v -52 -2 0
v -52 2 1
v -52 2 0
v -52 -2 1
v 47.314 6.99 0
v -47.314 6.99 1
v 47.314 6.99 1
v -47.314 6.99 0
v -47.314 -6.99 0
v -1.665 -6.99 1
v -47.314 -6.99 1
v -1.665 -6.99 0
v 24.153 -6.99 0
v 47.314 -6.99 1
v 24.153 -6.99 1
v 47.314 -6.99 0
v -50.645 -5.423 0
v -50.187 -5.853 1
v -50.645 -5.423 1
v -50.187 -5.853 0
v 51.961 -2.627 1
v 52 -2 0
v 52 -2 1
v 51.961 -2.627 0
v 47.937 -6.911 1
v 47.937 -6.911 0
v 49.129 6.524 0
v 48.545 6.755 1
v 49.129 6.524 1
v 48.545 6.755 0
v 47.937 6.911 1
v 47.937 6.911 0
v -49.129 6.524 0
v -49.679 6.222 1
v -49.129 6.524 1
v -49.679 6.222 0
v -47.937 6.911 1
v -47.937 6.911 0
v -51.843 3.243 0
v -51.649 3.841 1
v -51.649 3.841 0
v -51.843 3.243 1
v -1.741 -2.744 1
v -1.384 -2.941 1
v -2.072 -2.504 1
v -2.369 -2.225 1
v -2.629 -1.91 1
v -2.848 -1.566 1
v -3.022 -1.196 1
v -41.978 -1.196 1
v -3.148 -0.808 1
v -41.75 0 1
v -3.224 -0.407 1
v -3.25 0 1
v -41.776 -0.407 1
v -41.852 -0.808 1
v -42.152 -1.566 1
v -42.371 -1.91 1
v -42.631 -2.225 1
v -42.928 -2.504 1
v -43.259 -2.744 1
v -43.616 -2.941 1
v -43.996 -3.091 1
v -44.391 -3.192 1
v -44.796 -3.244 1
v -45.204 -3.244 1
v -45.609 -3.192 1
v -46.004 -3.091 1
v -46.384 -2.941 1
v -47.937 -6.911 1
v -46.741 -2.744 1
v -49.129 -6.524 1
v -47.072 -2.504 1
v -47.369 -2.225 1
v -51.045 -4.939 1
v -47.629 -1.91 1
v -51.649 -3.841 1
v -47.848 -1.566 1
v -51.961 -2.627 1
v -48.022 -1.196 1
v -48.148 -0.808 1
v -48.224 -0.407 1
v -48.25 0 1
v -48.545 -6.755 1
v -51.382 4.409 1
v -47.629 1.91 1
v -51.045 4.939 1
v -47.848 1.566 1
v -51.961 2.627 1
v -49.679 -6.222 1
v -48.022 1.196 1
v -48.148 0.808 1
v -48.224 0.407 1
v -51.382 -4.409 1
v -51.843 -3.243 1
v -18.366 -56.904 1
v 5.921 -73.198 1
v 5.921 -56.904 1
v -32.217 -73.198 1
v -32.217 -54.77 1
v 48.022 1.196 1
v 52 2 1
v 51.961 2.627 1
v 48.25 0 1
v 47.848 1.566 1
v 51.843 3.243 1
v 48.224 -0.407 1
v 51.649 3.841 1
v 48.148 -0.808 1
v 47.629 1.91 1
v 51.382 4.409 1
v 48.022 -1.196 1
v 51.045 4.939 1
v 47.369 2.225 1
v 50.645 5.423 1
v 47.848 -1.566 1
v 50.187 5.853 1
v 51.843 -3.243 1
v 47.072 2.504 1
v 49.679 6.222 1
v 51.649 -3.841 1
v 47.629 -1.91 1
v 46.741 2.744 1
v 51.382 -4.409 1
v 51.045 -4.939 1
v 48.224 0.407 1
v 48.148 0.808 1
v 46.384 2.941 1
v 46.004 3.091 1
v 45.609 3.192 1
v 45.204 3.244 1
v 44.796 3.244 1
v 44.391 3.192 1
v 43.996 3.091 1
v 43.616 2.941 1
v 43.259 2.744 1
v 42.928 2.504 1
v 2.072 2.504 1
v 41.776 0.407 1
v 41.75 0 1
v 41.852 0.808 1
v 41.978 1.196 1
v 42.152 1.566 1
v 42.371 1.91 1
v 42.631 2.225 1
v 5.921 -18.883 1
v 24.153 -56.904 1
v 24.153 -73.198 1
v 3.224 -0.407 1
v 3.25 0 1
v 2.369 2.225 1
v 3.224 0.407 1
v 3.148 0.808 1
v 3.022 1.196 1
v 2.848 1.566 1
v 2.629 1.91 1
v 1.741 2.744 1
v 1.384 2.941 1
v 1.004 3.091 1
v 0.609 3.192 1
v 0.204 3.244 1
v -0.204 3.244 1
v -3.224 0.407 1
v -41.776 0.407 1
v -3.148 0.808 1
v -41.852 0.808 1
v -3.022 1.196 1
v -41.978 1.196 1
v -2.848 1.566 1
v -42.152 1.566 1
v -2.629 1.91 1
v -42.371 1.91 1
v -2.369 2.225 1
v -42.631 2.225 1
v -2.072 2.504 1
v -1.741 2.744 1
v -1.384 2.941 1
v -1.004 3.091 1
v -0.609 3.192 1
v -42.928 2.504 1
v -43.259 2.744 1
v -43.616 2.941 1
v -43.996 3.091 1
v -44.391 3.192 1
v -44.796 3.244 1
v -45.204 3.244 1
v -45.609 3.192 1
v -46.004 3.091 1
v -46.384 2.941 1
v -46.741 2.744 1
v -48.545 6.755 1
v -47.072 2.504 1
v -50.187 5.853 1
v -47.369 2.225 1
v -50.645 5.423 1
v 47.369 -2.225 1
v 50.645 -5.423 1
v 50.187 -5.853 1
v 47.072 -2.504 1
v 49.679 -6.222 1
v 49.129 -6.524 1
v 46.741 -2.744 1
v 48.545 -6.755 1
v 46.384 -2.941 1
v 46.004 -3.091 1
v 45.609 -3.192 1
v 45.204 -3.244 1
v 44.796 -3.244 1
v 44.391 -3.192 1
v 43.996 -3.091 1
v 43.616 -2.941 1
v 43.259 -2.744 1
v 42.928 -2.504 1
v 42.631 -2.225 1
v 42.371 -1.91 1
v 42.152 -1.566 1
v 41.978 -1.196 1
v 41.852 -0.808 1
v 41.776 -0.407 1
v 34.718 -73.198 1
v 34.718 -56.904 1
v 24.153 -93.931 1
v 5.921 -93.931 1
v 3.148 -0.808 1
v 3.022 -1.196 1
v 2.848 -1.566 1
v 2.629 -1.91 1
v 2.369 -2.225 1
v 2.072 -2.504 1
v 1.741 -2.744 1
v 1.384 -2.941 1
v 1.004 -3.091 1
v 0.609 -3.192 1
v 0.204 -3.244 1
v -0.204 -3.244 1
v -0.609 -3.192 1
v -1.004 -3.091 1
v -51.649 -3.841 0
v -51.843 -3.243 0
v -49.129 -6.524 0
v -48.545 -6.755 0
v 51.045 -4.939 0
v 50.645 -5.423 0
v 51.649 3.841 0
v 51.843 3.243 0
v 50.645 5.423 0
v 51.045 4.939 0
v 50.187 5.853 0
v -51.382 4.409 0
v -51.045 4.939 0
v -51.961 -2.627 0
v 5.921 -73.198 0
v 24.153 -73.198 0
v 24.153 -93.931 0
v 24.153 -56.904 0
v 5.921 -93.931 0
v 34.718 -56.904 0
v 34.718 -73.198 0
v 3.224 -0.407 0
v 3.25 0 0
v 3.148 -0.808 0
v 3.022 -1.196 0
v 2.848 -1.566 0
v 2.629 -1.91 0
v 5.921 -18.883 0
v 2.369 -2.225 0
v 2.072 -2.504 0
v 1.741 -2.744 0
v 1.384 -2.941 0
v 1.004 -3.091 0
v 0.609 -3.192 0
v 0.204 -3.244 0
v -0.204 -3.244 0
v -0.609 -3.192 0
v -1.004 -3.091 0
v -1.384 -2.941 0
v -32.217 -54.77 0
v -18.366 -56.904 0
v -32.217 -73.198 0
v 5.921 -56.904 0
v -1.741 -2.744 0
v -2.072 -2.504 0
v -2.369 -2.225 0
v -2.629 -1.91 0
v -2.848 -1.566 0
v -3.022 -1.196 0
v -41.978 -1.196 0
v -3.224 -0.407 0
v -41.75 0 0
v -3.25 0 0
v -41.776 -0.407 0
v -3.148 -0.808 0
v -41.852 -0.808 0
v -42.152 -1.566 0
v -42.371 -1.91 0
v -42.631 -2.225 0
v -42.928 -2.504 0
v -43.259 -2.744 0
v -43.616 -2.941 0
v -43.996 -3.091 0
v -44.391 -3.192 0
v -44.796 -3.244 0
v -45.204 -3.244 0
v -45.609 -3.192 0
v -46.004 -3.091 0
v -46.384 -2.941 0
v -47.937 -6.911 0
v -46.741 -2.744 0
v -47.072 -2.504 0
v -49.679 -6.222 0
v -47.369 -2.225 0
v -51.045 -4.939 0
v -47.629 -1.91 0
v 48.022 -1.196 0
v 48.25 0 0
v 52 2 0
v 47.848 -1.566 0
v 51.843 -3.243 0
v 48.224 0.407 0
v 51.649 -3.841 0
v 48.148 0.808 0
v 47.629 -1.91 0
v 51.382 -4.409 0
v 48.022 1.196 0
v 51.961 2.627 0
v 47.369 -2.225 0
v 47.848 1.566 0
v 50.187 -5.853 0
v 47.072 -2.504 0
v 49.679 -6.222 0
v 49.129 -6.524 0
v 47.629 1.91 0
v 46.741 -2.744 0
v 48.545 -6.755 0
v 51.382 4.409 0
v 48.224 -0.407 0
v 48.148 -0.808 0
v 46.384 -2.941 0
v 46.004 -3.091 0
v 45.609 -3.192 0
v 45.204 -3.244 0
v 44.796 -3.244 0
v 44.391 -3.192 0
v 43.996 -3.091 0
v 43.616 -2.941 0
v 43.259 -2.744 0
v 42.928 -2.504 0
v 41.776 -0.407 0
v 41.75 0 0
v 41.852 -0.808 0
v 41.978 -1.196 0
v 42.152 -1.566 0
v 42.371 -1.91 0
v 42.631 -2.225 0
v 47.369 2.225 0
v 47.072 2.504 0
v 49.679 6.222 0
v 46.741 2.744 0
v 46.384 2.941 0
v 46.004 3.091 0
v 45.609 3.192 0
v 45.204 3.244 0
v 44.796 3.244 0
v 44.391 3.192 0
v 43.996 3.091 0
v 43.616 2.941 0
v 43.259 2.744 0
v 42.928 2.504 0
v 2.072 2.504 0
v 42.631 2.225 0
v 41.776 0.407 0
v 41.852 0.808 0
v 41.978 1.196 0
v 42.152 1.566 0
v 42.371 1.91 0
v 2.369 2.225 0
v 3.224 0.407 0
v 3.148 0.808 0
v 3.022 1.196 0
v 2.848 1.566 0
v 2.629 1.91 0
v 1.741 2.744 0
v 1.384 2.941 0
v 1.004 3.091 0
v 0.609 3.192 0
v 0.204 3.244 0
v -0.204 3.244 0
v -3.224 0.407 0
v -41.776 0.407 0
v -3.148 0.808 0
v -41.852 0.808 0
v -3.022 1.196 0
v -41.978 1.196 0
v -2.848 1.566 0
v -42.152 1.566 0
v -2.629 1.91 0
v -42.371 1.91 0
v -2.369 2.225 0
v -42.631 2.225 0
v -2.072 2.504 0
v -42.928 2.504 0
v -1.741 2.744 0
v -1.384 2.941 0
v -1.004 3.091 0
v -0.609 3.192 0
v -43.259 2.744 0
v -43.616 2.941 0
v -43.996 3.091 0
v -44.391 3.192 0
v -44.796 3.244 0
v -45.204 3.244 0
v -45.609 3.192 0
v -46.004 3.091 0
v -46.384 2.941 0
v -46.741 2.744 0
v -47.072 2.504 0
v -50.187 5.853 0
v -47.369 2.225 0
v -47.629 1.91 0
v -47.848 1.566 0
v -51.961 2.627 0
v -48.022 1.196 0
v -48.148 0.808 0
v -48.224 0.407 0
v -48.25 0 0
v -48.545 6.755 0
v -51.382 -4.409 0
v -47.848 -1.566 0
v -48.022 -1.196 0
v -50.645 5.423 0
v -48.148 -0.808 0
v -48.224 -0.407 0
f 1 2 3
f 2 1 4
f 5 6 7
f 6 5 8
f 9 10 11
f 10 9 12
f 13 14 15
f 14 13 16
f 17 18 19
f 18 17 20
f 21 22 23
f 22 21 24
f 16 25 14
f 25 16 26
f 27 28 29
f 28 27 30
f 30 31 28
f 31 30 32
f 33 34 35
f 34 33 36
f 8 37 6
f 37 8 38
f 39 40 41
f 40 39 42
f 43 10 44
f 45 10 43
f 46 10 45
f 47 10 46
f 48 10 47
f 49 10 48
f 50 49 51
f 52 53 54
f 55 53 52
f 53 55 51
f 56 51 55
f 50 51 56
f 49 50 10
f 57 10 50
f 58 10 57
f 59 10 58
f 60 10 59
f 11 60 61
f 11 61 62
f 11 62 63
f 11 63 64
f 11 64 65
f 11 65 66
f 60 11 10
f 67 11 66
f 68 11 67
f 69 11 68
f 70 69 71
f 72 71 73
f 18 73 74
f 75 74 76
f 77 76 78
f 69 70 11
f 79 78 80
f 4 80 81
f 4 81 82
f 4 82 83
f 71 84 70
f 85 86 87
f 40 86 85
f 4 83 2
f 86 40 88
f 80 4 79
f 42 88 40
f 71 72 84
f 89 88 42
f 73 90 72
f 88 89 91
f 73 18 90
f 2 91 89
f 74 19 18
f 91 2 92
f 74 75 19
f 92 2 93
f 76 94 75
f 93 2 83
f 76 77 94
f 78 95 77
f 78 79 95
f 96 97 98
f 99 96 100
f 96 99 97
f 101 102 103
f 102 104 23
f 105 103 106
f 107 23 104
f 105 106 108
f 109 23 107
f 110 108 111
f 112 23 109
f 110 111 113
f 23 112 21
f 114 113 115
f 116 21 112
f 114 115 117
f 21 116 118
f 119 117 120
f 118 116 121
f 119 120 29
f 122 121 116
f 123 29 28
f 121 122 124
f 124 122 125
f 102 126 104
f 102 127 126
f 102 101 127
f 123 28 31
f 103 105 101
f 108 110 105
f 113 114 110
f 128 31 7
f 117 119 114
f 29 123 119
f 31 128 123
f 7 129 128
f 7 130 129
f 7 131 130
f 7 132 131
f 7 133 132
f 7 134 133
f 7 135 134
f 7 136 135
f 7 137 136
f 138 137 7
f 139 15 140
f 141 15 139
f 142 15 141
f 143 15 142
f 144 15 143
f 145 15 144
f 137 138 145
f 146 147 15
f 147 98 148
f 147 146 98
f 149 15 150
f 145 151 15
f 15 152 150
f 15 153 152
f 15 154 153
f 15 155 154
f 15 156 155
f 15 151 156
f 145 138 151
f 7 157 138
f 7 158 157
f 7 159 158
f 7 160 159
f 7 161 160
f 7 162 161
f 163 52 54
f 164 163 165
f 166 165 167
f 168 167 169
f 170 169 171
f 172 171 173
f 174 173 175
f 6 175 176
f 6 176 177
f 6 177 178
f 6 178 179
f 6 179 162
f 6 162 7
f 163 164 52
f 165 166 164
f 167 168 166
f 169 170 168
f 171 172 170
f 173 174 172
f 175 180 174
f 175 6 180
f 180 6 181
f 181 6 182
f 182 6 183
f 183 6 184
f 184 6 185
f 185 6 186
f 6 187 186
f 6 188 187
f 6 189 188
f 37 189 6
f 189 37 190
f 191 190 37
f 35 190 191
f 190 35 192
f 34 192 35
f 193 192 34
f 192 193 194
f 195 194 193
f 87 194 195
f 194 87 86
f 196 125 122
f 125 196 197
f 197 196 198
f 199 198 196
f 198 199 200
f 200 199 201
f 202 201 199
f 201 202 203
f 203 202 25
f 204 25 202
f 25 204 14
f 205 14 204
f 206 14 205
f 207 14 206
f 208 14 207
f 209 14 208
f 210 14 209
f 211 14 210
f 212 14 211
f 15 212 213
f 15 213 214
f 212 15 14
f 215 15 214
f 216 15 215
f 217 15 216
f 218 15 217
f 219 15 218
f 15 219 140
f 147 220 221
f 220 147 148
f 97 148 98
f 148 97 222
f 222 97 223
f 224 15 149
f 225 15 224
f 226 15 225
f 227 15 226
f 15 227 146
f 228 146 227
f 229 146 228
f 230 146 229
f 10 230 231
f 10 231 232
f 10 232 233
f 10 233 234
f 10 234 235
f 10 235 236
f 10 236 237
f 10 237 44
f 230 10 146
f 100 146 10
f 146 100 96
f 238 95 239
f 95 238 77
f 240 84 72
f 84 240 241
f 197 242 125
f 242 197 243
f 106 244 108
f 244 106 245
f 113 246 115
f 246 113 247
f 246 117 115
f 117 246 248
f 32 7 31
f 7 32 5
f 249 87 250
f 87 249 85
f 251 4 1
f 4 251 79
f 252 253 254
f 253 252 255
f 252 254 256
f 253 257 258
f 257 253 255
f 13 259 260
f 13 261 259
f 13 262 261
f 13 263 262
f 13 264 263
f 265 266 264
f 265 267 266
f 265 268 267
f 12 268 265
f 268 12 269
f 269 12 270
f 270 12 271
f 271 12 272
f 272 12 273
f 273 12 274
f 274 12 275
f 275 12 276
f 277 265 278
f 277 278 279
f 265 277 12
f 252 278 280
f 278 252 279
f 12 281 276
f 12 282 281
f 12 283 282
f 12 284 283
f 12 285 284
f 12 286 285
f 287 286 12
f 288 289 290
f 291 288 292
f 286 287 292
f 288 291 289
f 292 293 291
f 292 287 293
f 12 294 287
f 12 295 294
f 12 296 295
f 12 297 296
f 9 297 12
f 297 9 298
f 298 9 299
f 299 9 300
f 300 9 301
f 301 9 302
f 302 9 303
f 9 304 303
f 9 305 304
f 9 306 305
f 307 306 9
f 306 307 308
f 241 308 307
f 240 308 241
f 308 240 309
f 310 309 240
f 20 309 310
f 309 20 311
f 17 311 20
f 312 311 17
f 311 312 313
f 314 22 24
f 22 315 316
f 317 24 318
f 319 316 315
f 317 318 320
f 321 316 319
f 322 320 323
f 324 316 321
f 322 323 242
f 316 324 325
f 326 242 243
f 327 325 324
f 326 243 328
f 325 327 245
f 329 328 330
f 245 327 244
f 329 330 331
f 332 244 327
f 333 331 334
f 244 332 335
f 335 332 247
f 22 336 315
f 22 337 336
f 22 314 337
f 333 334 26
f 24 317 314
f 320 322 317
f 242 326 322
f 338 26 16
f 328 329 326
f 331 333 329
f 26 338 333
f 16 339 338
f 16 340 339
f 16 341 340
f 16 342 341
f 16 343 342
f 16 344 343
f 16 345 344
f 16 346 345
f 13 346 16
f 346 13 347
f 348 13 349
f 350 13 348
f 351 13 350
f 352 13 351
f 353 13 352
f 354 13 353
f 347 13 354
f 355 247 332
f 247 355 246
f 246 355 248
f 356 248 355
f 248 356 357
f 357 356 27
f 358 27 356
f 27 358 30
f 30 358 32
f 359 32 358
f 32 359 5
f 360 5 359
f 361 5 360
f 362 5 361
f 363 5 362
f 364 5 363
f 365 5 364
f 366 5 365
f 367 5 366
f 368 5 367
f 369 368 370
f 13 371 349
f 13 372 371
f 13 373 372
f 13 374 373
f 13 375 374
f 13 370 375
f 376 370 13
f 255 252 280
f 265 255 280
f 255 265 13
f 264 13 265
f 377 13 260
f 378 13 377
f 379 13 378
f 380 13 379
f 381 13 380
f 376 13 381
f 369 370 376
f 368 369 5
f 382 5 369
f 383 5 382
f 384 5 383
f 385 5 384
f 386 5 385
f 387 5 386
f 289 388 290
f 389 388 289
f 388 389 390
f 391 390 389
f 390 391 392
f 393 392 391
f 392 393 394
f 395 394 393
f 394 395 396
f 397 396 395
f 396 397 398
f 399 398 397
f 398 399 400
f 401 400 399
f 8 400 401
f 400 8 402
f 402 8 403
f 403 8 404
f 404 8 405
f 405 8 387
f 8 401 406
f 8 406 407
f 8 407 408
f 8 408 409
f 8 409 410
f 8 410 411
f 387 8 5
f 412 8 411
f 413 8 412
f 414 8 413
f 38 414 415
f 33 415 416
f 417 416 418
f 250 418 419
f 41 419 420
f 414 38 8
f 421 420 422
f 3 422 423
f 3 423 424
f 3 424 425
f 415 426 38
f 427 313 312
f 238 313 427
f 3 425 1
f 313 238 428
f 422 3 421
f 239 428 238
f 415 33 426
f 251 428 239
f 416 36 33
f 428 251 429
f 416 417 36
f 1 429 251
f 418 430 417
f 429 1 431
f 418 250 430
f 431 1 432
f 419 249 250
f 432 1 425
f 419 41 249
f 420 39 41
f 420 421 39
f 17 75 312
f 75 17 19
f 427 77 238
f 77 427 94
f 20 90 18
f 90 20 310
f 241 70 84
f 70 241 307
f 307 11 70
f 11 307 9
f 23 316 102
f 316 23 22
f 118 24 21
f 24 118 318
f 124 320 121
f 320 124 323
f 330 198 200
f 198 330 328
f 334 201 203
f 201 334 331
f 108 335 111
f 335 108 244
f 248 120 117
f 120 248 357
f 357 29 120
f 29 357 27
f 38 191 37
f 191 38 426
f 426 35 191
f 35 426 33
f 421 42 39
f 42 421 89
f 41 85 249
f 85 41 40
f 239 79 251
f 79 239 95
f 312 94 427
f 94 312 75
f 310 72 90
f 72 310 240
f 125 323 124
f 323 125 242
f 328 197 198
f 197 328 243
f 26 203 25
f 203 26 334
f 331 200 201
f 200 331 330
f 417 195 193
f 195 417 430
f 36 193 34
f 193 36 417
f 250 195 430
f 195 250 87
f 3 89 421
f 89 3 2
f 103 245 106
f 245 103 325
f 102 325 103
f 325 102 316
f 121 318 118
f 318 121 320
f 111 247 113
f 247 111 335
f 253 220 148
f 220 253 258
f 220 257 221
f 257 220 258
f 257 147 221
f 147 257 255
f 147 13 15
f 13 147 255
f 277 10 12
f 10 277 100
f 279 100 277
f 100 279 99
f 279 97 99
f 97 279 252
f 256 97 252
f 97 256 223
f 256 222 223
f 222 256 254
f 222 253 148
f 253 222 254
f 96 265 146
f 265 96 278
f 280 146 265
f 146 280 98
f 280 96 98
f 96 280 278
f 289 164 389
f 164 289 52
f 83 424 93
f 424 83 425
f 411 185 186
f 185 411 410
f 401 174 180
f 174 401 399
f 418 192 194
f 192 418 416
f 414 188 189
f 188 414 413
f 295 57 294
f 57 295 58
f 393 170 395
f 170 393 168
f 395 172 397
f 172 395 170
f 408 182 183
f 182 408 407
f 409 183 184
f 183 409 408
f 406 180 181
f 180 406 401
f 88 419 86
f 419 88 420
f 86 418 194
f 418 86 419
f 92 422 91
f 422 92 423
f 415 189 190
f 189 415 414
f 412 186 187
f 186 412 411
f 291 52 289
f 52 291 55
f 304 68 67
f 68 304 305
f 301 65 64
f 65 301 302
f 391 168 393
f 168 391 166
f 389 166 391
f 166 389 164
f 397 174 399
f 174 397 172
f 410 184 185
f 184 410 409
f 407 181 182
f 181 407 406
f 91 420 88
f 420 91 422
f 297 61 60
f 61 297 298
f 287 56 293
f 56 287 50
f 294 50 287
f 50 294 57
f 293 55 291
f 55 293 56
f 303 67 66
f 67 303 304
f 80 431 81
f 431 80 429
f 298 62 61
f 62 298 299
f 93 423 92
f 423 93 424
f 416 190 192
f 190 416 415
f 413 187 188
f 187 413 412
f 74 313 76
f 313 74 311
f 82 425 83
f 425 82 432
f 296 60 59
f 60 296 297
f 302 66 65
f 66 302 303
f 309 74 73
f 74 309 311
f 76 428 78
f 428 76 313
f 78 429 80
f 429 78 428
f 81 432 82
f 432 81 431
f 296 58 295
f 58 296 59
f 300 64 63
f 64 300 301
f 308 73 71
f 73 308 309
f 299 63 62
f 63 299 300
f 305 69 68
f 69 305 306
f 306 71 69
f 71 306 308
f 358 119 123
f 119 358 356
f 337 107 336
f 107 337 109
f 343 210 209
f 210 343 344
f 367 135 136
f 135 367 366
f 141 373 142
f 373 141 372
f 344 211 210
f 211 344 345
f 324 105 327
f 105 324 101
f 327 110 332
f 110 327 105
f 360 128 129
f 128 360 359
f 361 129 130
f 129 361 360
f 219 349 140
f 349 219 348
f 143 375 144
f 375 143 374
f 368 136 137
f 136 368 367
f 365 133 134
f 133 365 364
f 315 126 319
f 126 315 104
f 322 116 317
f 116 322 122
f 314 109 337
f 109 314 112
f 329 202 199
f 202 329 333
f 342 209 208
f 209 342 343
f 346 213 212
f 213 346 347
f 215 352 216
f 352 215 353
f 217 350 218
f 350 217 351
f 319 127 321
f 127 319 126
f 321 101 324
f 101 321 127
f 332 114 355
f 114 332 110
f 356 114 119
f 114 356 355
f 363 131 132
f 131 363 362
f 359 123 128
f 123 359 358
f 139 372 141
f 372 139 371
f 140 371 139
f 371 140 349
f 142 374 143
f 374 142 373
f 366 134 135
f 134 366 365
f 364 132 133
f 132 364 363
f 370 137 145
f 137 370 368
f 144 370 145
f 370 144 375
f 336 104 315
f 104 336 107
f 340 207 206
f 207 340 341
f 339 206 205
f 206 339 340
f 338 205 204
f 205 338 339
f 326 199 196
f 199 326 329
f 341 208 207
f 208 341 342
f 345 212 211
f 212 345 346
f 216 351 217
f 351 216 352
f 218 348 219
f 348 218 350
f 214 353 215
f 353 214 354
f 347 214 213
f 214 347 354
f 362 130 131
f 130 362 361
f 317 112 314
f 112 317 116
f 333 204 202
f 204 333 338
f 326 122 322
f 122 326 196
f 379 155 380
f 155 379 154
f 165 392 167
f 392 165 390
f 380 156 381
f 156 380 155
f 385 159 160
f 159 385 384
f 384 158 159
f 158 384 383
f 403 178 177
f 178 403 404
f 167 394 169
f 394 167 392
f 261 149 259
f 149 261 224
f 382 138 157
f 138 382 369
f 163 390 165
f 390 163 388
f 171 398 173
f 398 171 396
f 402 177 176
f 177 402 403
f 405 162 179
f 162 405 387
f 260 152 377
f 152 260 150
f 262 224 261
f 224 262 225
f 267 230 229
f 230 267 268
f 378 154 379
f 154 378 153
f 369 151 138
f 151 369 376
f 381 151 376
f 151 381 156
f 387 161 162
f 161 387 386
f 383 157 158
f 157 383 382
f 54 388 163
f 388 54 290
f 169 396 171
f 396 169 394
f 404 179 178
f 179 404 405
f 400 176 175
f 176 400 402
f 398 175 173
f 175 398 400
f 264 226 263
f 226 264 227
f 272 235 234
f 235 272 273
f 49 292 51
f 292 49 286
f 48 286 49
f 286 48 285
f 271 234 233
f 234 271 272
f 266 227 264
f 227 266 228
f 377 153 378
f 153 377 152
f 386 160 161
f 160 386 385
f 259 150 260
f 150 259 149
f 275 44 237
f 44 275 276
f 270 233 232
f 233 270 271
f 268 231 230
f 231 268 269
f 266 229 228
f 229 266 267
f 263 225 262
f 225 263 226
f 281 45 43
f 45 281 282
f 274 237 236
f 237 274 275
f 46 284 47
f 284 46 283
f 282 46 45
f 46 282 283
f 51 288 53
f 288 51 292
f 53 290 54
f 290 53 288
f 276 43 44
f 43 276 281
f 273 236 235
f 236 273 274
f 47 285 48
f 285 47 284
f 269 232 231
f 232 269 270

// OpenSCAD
$fn = 50;


difference() {
	union() {
		translate(v = [0, 0, 0]) {
			rotate(a = [0, 0, 0]) {
				hull() {
					translate(v = [-47.0000000000, 2.0000000000, 0]) {
						rotate(a = [0, 0, 0]) {
							translate(v = [0, 0, 0]) {
								rotate(a = [0, 0, 0]) {
									cylinder(h = 1, r = 5);
								}
							}
						}
					}
					translate(v = [47.0000000000, 2.0000000000, 0]) {
						rotate(a = [0, 0, 0]) {
							translate(v = [0, 0, 0]) {
								rotate(a = [0, 0, 0]) {
									cylinder(h = 1, r = 5);
								}
							}
						}
					}
					translate(v = [-47.0000000000, -2.0000000000, 0]) {
						rotate(a = [0, 0, 0]) {
							translate(v = [0, 0, 0]) {
								rotate(a = [0, 0, 0]) {
									cylinder(h = 1, r = 5);
								}
							}
						}
					}
					translate(v = [47.0000000000, -2.0000000000, 0]) {
						rotate(a = [0, 0, 0]) {
							translate(v = [0, 0, 0]) {
								rotate(a = [0, 0, 0]) {
									cylinder(h = 1, r = 5);
								}
							}
						}
					}
				}
			}
		}
		translate(v = [0, 0, 0]) {
			rotate(a = [0, 0, 0]) {
				linear_extrude(height = 1) {
					text(font = "DejaVu Sans Mono:style=Bold", halign = "center", size = 95.0000000000, text = "4", valign = "top");
				}
			}
		}
	}
	union() {
		translate(v = [-45.0000000000, 0.0000000000, -125.0000000000]) {
			rotate(a = [0, 0, 0]) {
				cylinder(h = 250, r = 3.2500000000);
			}
		}
		translate(v = [45.0000000000, 0.0000000000, -125.0000000000]) {
			rotate(a = [0, 0, 0]) {
				cylinder(h = 250, r = 3.2500000000);
			}
		}
		translate(v = [45.0000000000, 0.0000000000, -125.0000000000]) {
			rotate(a = [0, 0, 0]) {
				cylinder(h = 250, r = 3.2500000000);
			}
		}
		translate(v = [0, 0, -125.0000000000]) {
			rotate(a = [0, 0, 0]) {
				cylinder(h = 250, r = 3.2500000000);
			}
		}
	}
}
